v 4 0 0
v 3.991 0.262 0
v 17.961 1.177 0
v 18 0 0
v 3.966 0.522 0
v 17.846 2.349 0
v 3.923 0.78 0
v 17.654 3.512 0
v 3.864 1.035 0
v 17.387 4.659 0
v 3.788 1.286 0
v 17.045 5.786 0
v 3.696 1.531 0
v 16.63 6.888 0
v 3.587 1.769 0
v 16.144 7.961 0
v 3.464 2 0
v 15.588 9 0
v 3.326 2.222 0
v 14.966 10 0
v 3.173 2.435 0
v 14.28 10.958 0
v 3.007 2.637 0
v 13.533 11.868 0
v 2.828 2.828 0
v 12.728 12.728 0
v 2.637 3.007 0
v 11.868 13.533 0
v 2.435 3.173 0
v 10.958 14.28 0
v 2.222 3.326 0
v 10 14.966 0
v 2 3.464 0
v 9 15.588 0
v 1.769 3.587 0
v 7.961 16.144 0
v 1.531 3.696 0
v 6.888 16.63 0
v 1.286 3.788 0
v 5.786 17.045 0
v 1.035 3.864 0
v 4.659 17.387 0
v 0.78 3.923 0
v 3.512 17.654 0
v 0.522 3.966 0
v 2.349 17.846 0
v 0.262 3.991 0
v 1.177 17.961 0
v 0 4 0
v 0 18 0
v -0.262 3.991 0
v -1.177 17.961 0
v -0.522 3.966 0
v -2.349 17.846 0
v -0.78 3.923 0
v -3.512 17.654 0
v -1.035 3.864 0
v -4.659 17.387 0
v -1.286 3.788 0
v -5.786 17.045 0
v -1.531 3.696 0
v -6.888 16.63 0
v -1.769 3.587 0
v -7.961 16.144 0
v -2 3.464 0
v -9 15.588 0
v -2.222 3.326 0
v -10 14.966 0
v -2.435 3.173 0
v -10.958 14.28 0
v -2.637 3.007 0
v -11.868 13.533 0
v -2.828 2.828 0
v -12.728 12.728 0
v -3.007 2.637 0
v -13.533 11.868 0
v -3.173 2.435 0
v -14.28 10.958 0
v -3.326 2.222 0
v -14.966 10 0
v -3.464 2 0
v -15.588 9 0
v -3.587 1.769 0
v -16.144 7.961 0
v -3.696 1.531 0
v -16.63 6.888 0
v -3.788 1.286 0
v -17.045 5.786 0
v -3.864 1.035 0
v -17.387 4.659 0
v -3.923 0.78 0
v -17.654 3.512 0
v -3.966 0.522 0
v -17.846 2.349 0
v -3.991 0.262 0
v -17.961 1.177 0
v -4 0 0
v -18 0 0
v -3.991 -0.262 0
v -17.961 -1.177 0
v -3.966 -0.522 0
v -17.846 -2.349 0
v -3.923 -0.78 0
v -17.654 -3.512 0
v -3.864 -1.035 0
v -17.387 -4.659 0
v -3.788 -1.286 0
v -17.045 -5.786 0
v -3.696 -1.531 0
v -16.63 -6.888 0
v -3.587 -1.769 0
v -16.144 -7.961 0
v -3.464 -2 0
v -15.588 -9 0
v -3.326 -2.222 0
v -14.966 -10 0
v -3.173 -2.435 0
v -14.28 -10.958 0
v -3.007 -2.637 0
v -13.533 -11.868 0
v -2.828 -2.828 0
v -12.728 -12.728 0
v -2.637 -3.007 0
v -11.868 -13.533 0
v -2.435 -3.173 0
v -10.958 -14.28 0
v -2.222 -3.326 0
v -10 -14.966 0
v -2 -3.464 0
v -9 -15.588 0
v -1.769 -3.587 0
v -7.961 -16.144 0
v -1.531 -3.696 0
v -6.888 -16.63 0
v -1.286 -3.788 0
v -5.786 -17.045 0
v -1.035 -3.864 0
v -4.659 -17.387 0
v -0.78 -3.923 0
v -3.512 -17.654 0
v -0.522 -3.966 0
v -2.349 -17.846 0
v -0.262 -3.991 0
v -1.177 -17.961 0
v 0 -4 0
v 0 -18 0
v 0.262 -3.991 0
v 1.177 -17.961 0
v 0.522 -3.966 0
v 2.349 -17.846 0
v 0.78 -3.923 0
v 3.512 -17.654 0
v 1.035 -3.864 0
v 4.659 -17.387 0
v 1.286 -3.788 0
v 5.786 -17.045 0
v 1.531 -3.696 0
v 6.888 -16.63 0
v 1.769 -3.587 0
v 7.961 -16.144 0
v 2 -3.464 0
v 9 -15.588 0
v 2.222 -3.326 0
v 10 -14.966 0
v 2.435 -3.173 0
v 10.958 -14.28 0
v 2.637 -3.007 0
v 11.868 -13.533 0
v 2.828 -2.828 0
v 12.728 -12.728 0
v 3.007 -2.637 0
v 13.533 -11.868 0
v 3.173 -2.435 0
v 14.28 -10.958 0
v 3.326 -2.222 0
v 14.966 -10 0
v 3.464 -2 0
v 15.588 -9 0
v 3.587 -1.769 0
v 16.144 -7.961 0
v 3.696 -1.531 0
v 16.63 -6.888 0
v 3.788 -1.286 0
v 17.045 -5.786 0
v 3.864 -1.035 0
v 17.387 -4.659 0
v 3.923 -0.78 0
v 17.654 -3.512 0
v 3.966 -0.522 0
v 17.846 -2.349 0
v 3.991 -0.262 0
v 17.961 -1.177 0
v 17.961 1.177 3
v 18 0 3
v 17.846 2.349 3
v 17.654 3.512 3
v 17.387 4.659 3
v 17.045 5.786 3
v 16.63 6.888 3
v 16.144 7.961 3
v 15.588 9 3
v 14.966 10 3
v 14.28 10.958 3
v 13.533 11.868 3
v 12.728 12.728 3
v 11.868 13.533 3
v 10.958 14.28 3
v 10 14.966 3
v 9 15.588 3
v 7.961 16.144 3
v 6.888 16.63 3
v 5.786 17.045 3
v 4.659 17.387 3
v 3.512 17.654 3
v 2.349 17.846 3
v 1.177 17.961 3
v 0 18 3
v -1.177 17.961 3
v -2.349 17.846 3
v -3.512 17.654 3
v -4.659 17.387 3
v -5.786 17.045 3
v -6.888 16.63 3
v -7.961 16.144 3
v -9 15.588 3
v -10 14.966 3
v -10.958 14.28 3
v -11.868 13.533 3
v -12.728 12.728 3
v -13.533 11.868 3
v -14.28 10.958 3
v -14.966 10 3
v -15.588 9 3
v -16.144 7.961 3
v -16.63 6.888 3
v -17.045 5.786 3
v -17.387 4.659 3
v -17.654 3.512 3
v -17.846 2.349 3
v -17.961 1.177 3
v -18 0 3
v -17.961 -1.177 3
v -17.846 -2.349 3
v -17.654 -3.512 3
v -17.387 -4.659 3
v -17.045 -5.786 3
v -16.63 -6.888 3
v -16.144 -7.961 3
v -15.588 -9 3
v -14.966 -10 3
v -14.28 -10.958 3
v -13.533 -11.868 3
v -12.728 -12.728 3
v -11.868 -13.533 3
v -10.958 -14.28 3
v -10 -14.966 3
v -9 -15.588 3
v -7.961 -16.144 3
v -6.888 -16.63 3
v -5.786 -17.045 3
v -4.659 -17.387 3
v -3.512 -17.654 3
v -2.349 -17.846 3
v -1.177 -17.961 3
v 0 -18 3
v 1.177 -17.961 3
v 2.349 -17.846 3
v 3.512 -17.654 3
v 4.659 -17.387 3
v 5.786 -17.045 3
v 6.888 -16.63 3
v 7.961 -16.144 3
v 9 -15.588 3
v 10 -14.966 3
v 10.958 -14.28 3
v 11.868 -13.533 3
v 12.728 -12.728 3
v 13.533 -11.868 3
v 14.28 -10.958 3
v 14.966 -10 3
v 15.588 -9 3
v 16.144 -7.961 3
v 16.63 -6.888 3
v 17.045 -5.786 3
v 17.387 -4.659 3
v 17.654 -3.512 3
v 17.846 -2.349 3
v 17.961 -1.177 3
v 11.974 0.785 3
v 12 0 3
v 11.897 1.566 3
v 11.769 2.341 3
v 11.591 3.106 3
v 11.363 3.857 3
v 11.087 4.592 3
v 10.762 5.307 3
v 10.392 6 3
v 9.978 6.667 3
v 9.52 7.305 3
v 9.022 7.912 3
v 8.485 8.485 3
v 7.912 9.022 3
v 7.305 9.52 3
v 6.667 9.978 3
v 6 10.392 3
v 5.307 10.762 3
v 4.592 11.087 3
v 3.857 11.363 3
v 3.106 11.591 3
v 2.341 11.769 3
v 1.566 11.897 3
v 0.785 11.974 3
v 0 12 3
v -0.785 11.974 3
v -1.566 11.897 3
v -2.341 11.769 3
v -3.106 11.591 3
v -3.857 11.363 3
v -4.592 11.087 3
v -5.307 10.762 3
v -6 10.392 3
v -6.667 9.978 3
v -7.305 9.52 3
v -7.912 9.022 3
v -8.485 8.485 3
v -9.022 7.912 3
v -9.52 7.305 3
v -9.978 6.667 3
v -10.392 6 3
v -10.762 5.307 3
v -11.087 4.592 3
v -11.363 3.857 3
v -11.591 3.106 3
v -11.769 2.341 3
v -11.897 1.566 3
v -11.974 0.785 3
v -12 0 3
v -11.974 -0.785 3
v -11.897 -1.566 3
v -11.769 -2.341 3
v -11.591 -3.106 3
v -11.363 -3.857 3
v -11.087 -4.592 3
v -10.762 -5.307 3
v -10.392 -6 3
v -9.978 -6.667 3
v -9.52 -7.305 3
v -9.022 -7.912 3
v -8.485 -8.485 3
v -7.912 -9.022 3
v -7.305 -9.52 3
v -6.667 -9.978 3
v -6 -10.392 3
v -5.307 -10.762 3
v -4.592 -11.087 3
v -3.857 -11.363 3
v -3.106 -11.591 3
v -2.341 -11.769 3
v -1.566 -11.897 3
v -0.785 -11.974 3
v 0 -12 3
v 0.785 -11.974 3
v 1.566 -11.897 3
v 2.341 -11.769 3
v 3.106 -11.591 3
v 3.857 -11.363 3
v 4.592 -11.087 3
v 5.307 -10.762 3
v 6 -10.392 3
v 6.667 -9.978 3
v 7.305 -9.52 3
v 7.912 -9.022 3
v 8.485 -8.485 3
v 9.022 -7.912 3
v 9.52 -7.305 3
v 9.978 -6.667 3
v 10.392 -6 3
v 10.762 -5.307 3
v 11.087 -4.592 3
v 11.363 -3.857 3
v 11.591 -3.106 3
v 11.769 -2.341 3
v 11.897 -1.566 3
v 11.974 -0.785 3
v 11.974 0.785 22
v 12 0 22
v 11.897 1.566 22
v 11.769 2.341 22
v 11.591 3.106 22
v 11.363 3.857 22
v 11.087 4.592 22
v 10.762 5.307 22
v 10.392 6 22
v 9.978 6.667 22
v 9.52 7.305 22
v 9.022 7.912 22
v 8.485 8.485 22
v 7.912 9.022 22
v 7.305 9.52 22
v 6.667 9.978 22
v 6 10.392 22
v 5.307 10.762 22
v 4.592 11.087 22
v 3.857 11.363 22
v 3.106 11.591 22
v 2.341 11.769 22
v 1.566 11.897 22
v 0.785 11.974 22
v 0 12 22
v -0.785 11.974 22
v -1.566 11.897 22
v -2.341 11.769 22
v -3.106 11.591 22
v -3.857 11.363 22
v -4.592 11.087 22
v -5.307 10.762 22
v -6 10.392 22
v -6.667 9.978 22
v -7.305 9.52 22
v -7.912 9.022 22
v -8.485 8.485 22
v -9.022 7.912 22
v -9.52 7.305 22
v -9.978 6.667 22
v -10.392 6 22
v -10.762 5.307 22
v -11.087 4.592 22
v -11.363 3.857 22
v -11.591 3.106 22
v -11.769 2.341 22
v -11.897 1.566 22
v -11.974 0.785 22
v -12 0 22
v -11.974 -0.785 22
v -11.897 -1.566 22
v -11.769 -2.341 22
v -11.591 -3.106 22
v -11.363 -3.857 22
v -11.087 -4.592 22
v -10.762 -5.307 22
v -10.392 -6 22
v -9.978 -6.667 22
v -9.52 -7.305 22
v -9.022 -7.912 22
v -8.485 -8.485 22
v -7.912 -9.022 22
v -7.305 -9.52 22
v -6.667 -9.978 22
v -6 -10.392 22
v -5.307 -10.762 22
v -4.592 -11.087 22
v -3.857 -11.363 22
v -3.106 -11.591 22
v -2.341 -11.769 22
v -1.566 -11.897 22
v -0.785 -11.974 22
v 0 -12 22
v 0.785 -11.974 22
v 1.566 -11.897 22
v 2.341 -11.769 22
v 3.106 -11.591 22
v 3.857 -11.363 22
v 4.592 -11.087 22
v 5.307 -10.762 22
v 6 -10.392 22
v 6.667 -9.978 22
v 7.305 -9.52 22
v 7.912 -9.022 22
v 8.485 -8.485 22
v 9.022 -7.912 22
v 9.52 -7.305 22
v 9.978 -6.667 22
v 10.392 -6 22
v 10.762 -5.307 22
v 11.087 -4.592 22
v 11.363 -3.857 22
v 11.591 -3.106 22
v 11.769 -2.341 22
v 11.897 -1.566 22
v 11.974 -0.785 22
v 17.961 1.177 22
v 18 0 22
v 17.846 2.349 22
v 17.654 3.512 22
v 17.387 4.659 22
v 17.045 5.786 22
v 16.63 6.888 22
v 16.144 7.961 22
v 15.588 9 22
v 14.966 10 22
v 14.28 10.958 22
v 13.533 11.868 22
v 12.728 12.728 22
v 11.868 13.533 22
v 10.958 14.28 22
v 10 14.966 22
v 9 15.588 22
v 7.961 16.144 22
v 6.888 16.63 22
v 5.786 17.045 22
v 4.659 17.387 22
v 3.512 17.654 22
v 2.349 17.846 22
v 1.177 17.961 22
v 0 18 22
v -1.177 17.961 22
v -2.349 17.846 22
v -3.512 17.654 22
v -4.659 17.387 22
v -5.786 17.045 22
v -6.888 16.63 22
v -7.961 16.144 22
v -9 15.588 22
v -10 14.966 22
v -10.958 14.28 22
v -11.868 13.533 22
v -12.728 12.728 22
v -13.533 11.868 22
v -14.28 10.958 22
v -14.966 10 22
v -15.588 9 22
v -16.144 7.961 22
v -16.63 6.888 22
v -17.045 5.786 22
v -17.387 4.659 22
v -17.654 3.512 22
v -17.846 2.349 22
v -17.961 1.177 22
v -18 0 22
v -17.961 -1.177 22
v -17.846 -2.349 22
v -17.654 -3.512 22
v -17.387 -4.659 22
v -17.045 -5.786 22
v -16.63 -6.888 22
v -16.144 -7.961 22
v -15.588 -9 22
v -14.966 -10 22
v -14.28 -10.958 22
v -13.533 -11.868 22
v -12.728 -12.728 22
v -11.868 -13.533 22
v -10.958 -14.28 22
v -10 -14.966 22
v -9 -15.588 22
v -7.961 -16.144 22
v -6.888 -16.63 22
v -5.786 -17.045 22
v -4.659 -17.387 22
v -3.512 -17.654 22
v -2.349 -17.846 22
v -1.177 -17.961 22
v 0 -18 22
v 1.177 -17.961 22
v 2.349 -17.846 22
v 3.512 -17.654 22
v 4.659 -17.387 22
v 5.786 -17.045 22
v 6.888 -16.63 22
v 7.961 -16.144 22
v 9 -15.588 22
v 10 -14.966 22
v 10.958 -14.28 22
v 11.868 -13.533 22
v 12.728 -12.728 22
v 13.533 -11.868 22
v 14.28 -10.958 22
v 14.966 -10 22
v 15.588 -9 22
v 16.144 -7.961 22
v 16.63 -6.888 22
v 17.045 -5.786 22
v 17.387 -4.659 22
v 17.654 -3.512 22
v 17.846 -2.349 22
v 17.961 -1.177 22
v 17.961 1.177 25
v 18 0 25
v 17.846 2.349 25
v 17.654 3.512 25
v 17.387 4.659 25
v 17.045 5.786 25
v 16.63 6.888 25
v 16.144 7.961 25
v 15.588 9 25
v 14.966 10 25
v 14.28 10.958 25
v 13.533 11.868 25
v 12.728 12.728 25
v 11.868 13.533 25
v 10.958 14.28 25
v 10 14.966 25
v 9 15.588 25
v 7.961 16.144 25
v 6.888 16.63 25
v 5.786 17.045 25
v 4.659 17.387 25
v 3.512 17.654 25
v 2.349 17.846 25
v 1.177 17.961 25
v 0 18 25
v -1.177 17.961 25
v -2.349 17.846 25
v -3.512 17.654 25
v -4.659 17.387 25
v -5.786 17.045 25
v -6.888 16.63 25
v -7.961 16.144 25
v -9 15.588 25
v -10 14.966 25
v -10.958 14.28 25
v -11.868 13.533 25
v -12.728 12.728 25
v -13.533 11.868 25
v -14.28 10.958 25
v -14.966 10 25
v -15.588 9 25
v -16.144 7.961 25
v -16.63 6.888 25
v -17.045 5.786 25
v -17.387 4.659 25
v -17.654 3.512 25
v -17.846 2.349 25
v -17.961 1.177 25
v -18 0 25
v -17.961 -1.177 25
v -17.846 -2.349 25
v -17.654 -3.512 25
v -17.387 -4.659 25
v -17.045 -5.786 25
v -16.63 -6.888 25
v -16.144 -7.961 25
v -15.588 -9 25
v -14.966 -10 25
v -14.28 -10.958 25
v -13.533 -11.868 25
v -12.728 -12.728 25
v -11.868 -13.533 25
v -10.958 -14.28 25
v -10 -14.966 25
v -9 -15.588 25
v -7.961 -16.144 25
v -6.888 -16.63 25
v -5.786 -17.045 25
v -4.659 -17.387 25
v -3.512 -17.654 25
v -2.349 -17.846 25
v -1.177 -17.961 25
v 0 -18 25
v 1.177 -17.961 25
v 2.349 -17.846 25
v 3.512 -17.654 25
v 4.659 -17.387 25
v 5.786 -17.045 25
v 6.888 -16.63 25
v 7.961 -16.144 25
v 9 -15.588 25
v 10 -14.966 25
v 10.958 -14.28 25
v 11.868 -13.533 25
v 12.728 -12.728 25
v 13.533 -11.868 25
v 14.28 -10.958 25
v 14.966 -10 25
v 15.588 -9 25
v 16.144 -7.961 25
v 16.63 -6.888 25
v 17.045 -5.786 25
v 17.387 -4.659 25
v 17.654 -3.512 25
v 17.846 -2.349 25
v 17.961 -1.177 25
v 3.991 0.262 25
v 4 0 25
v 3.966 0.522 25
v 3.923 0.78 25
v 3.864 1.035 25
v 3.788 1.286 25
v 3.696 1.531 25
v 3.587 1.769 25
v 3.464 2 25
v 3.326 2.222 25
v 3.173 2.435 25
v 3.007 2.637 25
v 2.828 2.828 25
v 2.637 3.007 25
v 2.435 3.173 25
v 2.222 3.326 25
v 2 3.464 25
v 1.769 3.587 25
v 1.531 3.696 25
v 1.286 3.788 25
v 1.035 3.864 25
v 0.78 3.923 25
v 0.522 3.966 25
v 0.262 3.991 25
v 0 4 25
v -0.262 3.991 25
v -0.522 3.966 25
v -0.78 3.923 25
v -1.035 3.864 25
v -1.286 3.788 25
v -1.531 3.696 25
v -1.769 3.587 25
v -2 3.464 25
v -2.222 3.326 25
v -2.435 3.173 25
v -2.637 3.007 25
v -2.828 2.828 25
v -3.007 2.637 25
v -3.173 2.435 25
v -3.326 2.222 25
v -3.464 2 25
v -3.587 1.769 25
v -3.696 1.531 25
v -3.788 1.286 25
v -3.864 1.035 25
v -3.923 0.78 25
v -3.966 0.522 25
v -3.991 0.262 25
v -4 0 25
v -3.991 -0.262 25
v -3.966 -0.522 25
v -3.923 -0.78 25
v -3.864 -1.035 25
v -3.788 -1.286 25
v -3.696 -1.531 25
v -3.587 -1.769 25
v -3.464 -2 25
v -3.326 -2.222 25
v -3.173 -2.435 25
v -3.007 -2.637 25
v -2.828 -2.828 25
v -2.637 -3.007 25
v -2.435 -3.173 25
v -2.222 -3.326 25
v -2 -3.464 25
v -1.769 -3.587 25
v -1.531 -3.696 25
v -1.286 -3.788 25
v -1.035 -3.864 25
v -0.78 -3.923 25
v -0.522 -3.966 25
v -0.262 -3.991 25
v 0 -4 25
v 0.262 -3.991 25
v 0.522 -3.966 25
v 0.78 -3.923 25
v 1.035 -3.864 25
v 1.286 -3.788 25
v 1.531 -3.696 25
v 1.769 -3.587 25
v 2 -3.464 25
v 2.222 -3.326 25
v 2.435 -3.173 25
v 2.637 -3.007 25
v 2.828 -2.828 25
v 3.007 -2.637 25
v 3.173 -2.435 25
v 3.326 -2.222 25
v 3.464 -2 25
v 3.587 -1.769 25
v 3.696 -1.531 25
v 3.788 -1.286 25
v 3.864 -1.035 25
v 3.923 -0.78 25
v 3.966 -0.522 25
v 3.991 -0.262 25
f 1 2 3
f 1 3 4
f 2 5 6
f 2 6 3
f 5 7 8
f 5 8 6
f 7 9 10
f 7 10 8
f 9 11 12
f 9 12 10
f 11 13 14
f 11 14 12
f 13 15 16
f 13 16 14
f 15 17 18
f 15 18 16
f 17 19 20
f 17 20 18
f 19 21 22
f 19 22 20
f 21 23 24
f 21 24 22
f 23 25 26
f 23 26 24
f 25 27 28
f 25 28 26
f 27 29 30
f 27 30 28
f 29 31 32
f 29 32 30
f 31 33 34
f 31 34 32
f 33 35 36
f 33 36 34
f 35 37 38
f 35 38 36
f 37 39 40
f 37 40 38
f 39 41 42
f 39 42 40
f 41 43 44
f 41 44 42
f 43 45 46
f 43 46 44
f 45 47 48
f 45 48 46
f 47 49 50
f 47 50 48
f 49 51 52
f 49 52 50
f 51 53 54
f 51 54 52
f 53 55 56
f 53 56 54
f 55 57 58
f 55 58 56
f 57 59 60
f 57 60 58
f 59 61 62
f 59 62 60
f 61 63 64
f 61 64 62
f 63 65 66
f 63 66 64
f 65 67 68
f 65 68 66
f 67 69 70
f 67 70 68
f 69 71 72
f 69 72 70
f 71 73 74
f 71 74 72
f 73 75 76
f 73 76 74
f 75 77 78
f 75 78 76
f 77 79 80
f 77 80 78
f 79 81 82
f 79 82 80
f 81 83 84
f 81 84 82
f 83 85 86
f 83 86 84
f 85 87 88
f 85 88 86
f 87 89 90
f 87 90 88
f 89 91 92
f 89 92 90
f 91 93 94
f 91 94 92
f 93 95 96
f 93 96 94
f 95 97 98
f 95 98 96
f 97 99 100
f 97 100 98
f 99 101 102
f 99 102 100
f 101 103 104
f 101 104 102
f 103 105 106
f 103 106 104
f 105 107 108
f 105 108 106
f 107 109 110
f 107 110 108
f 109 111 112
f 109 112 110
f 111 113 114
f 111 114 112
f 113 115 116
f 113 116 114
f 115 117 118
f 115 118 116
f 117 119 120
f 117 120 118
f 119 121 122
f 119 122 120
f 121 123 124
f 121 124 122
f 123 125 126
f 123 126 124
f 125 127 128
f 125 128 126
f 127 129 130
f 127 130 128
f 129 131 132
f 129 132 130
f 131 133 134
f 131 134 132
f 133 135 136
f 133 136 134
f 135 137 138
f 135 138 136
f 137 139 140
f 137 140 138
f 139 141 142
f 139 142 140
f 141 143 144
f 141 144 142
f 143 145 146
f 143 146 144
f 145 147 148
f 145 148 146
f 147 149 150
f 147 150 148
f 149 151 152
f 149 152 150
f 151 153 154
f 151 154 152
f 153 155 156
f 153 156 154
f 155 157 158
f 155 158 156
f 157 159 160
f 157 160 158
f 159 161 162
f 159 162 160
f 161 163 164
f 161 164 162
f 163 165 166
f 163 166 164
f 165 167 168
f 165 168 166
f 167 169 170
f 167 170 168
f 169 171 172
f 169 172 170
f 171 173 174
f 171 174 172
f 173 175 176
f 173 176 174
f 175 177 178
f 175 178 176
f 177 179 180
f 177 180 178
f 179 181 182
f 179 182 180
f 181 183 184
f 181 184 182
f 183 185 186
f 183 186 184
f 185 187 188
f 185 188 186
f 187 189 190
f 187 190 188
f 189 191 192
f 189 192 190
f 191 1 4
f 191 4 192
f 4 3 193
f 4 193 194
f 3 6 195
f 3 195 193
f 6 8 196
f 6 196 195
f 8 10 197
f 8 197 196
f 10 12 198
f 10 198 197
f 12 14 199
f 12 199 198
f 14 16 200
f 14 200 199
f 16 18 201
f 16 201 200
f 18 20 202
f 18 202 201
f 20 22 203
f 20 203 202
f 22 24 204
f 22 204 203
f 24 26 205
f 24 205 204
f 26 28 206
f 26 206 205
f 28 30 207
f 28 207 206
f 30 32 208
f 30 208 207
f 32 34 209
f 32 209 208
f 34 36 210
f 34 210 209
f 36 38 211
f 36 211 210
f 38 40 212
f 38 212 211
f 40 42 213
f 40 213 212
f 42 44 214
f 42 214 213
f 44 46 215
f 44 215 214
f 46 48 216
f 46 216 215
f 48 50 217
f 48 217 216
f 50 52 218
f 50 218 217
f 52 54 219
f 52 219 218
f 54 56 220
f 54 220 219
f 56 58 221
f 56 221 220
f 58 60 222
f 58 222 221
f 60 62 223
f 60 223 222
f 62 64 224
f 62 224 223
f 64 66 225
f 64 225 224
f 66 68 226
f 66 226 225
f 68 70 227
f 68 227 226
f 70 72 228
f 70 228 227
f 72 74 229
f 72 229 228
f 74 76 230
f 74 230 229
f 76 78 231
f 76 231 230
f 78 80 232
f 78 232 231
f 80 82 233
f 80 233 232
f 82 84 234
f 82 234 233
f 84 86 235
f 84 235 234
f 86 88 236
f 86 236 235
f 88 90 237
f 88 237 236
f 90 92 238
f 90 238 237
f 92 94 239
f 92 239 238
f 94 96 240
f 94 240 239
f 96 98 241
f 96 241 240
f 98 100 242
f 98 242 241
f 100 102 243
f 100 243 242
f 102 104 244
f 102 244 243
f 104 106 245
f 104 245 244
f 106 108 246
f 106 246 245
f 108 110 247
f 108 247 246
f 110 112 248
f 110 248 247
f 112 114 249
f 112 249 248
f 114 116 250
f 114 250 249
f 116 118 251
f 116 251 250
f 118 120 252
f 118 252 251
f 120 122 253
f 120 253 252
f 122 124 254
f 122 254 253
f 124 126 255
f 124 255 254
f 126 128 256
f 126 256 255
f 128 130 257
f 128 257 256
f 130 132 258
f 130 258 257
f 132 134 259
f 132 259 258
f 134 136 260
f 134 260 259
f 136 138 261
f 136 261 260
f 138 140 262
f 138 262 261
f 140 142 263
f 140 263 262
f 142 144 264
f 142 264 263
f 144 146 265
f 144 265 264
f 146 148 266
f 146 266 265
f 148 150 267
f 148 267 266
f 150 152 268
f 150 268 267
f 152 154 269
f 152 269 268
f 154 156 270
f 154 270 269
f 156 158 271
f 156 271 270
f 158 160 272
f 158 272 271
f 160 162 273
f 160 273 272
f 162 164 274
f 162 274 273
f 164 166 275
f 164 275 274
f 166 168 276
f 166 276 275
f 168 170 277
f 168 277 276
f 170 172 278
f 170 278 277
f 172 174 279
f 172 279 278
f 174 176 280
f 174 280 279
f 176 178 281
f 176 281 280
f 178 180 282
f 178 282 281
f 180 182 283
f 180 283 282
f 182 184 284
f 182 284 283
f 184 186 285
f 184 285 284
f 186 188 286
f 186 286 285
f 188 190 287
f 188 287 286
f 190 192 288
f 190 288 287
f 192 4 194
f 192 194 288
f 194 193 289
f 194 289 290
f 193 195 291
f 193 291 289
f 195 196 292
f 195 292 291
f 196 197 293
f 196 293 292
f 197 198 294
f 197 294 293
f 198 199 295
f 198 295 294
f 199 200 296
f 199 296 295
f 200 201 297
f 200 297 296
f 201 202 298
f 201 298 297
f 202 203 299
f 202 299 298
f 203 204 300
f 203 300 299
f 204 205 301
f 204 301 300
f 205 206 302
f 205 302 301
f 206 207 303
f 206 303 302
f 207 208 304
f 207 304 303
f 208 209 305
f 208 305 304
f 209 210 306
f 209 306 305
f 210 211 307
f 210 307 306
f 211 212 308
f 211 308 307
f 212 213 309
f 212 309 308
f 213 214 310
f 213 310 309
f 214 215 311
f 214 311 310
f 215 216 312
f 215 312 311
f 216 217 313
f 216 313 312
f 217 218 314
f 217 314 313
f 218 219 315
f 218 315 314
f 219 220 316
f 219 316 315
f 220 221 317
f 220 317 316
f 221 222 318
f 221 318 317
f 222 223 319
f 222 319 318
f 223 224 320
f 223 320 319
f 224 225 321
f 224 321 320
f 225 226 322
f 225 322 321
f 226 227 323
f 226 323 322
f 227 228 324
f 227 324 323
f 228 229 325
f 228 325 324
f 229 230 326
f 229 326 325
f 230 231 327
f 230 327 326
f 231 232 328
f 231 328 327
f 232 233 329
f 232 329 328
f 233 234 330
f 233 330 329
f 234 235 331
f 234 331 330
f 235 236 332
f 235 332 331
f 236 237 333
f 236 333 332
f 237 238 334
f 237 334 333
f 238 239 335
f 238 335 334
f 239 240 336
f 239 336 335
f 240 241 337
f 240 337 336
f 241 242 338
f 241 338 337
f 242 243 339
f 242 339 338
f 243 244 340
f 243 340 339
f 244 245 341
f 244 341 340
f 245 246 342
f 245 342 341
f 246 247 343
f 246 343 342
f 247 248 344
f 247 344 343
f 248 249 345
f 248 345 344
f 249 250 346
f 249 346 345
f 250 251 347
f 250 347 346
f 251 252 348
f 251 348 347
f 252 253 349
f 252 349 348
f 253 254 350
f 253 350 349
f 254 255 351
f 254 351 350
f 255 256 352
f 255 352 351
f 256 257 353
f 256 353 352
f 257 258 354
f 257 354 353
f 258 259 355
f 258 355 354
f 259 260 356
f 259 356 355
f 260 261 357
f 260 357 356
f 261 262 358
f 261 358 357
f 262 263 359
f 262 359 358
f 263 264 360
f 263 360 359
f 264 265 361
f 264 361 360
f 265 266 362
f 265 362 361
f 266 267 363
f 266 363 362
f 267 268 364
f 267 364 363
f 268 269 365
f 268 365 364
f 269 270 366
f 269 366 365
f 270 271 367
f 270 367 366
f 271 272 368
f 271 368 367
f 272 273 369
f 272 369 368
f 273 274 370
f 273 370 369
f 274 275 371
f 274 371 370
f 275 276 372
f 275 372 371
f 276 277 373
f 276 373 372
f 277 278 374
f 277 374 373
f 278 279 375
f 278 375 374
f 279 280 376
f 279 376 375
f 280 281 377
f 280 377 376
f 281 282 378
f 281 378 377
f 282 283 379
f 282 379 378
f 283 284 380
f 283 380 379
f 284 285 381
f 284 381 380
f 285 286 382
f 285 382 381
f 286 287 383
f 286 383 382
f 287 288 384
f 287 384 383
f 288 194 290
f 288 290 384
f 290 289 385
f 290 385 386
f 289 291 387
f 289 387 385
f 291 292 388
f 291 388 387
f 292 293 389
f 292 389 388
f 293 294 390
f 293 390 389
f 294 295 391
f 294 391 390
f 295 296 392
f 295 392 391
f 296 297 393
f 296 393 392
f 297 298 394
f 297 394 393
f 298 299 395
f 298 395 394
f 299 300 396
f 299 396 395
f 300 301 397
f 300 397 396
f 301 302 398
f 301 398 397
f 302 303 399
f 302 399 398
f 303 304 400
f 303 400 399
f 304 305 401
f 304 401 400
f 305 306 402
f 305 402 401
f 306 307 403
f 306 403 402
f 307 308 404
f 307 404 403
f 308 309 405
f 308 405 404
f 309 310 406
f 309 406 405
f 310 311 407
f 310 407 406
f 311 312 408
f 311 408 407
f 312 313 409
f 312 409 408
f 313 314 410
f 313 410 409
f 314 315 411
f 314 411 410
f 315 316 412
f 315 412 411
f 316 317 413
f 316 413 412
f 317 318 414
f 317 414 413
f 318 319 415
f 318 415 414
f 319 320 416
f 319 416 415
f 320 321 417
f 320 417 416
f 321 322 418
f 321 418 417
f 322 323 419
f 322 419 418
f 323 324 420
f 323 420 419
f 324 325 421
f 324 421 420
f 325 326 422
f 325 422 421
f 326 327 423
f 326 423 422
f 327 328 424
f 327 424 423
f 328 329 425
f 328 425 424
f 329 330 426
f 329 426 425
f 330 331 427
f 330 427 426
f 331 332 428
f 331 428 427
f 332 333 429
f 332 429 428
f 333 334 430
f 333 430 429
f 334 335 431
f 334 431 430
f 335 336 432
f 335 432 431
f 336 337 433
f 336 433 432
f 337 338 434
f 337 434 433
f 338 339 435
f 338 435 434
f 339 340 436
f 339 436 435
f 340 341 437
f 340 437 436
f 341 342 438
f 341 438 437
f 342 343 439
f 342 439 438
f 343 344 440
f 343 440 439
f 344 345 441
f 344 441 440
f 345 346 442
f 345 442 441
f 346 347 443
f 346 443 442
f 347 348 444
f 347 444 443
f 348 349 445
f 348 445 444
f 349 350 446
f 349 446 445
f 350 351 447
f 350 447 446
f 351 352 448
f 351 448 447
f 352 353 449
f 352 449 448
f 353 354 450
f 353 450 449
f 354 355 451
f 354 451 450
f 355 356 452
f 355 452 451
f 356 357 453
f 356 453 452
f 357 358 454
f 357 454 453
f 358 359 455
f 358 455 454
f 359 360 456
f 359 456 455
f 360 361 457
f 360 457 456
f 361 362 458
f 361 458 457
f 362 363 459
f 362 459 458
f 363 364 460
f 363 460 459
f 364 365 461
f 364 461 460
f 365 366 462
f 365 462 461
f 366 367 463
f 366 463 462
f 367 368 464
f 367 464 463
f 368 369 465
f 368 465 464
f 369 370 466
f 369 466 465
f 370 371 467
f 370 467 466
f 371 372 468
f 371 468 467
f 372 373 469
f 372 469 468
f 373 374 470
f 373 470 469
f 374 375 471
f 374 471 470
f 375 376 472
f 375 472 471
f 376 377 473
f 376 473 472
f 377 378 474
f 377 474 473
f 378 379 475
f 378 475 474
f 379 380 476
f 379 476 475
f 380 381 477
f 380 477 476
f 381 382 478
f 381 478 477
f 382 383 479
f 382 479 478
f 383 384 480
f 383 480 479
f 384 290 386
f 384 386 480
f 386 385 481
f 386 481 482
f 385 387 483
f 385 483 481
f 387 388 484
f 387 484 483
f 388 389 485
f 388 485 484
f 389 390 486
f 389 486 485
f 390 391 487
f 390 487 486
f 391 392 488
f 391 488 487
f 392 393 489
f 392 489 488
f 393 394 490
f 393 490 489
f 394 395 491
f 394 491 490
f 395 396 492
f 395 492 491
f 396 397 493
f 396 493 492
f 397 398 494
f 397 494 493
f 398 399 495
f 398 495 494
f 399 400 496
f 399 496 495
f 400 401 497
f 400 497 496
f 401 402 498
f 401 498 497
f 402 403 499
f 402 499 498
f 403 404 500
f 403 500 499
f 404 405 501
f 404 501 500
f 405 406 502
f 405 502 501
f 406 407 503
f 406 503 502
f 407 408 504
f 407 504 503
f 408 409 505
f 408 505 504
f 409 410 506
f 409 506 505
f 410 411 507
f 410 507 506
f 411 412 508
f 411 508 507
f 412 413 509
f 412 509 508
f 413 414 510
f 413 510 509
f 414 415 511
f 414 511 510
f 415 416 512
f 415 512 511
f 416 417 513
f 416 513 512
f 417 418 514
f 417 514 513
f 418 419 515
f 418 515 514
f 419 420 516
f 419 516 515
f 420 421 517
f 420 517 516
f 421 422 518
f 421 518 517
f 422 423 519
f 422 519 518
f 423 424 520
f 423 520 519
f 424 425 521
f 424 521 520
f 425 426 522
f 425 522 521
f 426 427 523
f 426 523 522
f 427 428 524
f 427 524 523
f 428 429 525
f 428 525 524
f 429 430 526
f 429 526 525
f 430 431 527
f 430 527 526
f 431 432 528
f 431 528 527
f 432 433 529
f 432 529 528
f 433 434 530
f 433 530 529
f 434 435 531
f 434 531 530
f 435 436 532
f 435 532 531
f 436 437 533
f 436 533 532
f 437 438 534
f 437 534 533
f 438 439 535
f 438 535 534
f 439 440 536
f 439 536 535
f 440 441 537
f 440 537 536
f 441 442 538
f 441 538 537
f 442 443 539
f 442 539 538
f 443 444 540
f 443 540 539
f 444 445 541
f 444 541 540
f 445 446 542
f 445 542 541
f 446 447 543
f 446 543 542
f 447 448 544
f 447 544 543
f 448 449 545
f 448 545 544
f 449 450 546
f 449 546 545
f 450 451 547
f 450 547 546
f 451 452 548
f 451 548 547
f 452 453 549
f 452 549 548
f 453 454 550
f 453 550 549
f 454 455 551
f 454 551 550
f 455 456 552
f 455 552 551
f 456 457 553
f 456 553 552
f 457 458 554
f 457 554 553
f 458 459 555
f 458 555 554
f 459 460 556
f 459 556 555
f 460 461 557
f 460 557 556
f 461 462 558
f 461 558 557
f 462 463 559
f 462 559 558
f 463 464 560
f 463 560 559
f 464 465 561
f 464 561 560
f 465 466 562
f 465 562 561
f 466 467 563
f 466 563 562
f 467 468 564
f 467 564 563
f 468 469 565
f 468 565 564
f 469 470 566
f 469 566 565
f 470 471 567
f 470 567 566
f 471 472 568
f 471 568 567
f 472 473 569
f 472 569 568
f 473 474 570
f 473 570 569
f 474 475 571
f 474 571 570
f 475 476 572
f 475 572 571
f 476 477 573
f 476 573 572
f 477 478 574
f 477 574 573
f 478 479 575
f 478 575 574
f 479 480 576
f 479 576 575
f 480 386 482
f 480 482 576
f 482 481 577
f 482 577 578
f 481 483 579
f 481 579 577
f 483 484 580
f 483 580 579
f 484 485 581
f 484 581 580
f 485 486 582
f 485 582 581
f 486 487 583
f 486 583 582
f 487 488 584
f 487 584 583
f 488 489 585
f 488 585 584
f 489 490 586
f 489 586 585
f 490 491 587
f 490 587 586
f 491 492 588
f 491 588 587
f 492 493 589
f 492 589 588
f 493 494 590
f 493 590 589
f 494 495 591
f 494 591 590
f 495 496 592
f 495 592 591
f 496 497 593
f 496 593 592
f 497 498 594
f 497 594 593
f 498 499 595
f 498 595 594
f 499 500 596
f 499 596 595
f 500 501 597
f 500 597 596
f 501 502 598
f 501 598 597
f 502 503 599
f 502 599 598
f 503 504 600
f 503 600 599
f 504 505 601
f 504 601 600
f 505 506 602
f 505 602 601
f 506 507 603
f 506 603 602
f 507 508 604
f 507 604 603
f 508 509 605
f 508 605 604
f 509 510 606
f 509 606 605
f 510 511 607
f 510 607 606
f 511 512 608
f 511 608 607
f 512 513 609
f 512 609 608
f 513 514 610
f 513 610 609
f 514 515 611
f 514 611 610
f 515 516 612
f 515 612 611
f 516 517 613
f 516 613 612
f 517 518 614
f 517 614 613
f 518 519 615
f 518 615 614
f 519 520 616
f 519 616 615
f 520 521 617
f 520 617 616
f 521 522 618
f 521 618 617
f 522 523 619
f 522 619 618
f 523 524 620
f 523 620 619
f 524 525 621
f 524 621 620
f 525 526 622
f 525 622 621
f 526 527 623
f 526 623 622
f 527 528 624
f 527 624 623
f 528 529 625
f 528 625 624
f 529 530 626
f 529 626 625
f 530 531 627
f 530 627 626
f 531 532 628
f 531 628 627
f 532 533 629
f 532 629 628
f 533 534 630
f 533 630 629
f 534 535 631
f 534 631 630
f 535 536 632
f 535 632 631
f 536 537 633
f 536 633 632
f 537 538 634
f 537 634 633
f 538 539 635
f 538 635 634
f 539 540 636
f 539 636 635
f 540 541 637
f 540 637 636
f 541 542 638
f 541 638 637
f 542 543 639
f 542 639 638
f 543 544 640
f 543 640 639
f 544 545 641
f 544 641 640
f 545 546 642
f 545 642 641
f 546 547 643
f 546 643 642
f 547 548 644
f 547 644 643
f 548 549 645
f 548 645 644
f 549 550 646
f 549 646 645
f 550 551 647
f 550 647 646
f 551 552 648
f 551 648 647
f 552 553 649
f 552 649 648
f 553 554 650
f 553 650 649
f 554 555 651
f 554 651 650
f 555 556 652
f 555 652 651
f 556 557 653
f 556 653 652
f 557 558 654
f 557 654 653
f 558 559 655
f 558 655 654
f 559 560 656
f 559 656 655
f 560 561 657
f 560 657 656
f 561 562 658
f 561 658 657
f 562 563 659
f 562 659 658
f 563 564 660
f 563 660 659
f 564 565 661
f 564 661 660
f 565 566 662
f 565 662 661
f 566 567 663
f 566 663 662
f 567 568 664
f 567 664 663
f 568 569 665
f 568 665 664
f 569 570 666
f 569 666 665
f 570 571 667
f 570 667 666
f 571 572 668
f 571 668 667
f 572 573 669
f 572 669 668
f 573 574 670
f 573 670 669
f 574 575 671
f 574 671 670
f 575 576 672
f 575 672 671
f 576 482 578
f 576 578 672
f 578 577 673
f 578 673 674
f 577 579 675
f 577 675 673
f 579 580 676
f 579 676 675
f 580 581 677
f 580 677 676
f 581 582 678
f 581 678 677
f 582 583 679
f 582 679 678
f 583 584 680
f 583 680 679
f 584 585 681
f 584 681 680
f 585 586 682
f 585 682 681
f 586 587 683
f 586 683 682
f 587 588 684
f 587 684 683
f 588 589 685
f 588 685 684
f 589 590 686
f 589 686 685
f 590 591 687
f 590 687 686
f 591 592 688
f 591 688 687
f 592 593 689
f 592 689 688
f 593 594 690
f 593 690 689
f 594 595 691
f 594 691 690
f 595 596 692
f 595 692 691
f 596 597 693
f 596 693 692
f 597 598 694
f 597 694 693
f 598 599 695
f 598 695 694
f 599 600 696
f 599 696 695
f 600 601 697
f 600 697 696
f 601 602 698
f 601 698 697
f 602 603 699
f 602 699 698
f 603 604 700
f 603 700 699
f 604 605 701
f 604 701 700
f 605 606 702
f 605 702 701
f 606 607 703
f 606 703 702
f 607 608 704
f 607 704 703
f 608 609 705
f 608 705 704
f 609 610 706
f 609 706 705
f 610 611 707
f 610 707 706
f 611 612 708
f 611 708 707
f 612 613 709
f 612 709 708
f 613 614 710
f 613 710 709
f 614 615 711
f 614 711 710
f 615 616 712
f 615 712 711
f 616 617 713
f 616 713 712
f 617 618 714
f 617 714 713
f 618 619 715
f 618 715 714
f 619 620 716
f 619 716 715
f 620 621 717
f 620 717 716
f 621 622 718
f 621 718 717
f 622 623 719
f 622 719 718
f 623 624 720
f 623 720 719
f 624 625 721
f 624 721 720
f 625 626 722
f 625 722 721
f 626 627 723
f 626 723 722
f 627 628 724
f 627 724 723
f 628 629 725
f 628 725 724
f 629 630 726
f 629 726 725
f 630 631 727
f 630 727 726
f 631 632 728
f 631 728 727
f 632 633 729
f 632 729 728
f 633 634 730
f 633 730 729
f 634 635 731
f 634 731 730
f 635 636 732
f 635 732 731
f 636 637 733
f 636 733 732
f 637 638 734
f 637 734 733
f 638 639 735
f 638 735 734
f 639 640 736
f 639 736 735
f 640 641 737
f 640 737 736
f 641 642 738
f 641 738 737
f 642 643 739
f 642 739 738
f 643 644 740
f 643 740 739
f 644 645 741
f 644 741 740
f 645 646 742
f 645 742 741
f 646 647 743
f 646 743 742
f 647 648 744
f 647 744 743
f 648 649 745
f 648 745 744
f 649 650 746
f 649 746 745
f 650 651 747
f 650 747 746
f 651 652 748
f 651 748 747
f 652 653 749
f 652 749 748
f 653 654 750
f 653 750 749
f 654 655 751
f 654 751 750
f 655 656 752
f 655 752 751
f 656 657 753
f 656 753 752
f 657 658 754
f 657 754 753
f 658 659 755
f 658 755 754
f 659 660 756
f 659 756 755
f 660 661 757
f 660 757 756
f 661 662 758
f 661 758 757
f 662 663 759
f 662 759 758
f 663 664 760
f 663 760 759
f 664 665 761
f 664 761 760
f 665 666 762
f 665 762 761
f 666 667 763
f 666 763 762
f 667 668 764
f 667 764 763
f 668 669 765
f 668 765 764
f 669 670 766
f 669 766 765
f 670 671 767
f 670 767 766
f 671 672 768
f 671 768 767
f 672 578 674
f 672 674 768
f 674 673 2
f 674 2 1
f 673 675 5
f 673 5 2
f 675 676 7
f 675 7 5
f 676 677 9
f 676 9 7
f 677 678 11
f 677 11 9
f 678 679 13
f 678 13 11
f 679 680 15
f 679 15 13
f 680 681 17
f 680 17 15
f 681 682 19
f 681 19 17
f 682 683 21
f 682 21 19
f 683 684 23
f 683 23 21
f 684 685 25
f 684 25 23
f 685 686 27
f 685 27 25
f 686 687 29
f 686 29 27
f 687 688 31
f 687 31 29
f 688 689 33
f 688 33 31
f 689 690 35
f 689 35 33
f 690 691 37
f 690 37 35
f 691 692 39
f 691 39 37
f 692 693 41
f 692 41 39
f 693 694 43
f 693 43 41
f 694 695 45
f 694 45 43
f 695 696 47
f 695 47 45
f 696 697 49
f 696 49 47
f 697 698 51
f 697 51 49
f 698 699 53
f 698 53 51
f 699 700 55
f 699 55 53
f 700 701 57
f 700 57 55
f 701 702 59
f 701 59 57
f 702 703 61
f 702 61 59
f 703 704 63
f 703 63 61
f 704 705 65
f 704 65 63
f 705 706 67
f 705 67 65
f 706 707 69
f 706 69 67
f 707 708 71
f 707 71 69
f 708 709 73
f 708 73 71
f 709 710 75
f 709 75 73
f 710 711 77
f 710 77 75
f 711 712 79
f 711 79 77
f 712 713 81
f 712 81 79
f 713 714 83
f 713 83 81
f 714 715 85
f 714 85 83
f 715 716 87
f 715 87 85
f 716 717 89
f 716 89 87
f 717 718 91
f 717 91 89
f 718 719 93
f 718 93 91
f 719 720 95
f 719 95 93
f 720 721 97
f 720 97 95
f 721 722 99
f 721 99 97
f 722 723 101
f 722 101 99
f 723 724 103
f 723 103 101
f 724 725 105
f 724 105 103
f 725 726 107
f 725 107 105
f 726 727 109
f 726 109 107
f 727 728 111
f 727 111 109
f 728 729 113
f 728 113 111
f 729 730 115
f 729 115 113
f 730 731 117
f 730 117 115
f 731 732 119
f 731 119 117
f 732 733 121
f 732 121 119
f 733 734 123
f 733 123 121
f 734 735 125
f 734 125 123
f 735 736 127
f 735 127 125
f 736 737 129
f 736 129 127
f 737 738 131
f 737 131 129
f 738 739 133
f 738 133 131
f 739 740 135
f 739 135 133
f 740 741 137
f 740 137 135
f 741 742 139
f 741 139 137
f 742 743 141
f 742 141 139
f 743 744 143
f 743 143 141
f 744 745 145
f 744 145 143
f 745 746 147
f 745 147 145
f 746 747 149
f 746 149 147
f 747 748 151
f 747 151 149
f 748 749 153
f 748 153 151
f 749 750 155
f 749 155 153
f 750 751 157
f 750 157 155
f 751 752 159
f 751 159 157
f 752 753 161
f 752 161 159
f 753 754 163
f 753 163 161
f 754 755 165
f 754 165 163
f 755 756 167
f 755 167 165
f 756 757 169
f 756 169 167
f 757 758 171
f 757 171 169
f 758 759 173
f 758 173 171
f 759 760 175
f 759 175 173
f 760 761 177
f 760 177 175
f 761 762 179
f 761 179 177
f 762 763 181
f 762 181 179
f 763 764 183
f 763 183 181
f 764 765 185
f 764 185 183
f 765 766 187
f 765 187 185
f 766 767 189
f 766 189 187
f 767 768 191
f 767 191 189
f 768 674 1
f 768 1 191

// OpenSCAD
// Original MechIntel educational model. CC0-1.0. Units: mm.
// Not a standardized or load-rated component.
$fn=96;
// Section points: [radius, height], mm. Edit to change the profile.
section=[[4, 0], [18, 0], [18, 3], [12, 3], [12, 22], [18, 22], [18, 25], [4, 25]];
rotate_extrude($fn=96) polygon(points=section);
